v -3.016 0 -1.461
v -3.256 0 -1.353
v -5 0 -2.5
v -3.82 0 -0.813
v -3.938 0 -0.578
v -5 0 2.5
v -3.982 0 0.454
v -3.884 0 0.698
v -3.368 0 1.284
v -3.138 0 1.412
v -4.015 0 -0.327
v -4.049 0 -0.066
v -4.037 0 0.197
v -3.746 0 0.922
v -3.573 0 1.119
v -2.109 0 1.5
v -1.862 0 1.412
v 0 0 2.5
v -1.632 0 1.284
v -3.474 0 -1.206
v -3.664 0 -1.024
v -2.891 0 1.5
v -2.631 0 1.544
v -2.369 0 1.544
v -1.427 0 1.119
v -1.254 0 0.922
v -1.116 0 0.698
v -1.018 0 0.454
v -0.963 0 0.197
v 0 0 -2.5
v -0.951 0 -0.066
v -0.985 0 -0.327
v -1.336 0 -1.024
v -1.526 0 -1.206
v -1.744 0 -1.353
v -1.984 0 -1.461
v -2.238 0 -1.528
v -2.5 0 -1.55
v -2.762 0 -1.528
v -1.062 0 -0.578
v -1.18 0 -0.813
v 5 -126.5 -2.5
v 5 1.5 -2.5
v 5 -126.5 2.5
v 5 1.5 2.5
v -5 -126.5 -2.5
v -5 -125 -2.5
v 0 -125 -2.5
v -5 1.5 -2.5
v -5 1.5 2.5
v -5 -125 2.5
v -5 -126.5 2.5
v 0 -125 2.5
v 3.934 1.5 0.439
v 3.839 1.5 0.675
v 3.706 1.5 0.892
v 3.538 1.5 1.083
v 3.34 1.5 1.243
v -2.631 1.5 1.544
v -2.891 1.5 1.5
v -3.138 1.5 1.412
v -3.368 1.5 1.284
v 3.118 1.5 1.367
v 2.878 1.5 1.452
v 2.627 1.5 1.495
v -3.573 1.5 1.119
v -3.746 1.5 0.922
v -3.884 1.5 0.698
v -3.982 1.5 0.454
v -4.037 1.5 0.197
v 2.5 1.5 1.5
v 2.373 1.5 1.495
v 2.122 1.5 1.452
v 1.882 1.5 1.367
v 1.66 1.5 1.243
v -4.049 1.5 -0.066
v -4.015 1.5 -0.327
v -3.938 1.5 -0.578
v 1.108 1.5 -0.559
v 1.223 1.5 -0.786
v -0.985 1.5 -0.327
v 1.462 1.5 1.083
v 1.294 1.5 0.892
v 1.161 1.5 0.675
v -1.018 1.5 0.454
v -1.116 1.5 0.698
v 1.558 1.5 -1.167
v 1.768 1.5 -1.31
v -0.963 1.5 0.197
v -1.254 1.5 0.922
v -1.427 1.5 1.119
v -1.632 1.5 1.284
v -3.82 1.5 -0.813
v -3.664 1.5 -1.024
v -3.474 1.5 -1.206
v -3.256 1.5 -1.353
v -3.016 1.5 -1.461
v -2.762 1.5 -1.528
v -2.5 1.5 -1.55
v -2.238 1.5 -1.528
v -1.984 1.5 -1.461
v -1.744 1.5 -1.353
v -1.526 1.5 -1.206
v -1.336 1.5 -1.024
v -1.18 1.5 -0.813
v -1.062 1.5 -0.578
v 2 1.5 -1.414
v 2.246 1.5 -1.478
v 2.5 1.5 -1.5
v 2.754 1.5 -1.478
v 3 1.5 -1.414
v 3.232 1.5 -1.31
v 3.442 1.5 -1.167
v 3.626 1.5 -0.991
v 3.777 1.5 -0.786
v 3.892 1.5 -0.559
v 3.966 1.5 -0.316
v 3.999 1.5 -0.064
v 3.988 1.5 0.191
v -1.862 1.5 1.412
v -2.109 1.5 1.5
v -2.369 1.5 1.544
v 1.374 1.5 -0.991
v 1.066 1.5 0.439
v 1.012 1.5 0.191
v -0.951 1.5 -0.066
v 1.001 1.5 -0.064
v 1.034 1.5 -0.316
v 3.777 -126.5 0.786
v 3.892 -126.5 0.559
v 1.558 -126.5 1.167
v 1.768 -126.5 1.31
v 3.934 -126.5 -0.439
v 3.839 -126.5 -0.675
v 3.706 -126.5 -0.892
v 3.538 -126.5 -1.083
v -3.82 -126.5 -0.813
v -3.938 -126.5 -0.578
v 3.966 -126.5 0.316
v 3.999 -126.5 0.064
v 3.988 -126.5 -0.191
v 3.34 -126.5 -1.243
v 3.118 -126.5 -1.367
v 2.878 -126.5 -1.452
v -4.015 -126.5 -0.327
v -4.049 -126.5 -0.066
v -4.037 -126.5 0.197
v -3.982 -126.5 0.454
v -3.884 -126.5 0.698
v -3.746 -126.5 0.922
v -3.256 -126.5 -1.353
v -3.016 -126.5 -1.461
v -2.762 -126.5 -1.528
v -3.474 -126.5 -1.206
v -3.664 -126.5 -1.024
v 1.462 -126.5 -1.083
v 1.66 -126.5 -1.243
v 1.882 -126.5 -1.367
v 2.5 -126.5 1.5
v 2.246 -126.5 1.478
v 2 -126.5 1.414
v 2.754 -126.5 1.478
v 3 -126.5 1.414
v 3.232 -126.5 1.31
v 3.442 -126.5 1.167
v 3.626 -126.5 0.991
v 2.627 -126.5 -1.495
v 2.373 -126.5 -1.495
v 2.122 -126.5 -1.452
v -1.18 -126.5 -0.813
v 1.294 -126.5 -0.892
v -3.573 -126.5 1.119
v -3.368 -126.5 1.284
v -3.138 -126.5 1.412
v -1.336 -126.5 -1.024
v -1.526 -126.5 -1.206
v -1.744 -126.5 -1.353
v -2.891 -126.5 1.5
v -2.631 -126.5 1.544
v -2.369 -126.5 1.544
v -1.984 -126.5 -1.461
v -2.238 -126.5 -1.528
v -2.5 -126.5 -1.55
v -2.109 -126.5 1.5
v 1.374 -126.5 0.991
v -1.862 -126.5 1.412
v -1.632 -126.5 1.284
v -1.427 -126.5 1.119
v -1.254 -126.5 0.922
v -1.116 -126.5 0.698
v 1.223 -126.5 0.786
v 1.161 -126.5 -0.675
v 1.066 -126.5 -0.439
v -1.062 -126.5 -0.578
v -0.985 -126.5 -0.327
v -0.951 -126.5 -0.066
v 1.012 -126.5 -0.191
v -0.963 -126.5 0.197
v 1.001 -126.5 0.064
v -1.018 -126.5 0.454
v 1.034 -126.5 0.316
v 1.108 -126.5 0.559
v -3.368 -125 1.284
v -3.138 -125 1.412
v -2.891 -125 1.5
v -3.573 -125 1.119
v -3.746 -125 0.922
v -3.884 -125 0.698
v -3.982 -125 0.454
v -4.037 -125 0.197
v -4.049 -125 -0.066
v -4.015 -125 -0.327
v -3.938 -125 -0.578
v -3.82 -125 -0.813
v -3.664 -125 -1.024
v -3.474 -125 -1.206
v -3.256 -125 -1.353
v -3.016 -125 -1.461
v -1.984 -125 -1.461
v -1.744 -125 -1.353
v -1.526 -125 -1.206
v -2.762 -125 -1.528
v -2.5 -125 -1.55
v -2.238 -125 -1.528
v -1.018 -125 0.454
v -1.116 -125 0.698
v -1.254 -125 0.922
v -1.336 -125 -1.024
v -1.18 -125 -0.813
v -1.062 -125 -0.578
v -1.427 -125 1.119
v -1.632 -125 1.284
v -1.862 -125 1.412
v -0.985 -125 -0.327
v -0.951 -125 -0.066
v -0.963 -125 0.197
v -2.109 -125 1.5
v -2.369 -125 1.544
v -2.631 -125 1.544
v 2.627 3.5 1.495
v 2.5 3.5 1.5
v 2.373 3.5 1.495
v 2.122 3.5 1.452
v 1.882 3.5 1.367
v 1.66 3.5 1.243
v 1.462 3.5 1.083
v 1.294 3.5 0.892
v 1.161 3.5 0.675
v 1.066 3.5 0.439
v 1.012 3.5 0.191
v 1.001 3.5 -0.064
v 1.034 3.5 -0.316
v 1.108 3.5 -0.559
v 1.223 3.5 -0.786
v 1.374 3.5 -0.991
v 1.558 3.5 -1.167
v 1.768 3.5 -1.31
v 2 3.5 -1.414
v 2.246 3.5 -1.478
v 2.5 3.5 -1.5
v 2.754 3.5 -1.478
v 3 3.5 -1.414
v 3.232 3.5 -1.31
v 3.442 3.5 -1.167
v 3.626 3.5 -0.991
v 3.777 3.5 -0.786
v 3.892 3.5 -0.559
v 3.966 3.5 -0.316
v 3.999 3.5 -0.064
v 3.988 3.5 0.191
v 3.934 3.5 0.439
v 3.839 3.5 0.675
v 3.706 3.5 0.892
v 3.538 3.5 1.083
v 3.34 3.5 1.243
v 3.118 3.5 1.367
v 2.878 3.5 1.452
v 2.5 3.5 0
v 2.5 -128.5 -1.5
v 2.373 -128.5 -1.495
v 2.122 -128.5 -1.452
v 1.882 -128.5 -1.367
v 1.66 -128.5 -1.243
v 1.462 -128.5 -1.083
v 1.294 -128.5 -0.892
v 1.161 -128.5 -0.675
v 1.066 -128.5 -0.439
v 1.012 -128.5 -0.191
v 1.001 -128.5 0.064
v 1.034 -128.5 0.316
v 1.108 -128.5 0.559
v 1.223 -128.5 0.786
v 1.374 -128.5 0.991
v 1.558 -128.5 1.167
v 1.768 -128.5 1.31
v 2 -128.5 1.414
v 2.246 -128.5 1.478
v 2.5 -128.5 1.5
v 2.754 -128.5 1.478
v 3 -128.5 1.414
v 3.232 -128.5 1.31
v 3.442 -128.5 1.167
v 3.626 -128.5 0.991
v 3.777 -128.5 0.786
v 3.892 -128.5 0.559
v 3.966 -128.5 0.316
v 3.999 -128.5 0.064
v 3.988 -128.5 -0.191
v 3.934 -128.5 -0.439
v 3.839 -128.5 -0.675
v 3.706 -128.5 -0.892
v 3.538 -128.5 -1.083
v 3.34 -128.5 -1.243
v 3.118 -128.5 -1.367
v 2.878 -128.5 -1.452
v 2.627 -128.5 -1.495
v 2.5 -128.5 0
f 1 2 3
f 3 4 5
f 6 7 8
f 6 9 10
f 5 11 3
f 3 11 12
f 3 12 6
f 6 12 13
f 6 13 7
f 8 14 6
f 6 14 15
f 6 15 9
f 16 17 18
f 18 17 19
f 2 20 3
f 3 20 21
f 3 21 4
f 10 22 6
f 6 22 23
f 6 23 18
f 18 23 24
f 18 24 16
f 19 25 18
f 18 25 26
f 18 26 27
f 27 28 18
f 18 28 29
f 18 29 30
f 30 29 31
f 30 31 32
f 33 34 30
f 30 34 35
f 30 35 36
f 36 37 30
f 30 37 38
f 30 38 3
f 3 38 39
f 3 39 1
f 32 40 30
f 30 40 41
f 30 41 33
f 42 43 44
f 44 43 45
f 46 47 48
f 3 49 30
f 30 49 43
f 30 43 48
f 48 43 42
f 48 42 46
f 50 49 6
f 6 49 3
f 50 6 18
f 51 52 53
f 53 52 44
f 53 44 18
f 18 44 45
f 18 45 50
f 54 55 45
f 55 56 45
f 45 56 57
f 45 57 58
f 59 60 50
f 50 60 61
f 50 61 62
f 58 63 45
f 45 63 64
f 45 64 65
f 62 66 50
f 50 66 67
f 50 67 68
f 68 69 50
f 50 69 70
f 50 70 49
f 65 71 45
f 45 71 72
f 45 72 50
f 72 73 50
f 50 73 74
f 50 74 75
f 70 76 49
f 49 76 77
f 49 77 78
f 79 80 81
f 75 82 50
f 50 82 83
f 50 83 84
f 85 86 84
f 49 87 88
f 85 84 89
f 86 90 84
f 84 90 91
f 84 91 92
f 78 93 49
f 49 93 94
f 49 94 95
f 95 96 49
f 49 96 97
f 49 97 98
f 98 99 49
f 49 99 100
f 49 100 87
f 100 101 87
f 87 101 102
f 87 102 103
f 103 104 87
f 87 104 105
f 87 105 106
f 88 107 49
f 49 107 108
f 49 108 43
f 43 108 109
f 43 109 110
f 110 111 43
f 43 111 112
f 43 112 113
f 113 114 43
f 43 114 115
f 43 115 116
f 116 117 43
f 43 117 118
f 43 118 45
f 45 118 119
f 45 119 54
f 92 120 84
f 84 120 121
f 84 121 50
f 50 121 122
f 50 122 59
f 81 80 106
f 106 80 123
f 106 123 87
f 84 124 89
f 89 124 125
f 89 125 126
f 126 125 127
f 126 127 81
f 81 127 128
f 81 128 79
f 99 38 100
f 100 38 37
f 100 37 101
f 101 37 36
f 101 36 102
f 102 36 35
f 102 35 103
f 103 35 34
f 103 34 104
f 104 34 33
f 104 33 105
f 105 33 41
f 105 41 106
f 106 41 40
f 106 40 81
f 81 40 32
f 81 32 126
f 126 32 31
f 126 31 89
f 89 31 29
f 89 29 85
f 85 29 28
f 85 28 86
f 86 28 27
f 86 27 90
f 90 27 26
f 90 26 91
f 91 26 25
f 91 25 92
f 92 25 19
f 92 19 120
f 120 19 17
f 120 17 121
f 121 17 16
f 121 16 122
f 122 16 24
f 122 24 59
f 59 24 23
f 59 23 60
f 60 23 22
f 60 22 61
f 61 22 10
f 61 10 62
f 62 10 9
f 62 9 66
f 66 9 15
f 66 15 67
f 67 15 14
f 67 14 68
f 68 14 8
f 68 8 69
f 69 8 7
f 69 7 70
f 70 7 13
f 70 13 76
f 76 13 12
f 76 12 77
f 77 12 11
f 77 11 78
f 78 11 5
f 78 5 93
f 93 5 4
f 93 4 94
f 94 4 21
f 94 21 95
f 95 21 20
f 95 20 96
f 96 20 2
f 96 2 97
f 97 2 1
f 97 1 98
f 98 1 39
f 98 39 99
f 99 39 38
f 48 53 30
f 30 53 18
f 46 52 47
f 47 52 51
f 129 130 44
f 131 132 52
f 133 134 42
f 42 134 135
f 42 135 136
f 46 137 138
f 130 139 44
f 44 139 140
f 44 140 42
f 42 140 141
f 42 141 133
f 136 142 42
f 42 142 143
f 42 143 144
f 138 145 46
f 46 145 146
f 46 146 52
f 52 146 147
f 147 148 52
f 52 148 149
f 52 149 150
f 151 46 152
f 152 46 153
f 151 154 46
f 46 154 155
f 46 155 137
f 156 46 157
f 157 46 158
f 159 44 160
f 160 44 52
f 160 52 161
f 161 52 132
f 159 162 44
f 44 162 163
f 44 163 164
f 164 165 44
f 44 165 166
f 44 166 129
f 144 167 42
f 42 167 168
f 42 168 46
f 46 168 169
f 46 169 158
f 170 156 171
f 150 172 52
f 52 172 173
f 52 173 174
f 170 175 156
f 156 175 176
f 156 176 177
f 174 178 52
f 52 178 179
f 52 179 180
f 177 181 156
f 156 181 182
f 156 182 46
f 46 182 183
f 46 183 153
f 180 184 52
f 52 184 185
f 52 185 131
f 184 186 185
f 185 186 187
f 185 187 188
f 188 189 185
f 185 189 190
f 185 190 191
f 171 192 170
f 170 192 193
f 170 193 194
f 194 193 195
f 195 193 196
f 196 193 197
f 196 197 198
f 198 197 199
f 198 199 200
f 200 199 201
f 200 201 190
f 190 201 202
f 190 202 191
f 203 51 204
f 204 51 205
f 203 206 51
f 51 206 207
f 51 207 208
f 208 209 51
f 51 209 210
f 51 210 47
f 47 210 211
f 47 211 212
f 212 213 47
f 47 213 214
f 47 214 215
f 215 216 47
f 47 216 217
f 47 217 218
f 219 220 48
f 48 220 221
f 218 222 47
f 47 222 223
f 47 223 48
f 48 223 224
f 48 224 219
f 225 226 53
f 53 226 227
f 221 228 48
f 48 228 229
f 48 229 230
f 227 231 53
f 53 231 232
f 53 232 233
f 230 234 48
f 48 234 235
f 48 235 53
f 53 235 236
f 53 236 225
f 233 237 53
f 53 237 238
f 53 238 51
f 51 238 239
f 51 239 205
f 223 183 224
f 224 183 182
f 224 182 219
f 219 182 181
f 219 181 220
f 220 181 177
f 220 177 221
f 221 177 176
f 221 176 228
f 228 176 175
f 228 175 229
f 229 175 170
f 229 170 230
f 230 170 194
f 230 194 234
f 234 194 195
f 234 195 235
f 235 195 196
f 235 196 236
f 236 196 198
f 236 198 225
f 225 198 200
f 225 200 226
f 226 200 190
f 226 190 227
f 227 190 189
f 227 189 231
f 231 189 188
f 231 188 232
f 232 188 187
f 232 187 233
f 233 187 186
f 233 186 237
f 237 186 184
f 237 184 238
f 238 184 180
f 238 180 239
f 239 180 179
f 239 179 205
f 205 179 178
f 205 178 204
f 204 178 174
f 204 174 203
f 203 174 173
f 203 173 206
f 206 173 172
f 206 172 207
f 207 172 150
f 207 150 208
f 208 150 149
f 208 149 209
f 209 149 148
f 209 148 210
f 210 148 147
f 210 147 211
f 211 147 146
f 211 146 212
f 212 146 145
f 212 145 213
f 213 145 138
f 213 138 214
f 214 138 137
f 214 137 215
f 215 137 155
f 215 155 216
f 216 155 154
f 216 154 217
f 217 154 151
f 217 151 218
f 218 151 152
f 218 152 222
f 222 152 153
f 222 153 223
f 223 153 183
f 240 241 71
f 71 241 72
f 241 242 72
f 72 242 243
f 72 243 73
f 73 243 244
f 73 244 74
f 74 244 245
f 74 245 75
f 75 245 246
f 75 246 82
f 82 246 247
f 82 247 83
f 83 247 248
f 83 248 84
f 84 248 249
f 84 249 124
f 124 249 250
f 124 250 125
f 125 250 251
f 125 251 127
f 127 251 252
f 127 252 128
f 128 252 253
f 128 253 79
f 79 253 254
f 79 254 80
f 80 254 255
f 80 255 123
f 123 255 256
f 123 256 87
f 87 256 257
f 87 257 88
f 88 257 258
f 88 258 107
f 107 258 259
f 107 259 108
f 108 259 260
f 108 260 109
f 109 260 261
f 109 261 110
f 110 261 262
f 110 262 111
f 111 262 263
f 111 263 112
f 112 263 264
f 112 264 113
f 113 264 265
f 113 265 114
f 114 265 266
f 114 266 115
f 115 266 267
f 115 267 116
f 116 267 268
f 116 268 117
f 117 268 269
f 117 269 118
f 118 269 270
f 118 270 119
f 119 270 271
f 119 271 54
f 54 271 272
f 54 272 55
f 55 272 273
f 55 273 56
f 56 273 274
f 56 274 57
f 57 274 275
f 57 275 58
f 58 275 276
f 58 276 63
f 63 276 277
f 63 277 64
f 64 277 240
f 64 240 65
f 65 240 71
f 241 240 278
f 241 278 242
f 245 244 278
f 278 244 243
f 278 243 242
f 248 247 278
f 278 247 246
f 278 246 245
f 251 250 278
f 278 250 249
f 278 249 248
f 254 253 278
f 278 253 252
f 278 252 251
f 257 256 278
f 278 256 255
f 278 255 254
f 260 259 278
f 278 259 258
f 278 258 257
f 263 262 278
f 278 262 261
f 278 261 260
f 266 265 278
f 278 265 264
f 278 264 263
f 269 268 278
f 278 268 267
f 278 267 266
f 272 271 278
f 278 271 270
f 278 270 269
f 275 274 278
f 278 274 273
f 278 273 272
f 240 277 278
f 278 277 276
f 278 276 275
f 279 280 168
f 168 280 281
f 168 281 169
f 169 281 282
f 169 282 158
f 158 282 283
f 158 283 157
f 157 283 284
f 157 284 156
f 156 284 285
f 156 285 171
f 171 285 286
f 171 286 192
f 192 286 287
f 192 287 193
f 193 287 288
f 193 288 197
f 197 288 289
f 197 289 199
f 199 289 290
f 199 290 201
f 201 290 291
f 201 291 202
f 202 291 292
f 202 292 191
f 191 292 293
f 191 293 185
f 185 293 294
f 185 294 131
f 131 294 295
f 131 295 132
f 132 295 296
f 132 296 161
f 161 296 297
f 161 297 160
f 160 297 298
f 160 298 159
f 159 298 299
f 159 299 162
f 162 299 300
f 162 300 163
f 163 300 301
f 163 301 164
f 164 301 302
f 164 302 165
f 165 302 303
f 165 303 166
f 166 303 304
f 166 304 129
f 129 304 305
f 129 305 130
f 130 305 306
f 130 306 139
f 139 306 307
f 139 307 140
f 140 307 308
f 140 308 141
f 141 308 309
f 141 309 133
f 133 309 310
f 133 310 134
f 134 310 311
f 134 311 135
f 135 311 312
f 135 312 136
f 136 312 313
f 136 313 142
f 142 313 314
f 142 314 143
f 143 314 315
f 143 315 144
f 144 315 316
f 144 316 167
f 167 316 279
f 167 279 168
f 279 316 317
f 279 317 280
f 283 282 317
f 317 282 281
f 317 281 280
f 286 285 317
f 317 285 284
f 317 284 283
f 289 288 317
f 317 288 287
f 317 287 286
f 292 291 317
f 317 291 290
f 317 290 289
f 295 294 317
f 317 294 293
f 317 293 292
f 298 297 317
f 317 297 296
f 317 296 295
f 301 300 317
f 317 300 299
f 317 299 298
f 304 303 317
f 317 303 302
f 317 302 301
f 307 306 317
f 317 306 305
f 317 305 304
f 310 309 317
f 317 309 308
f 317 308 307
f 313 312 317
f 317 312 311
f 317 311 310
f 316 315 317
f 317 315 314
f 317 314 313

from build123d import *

# Parameters (mm, degrees)
SKETCH_2_W          = 10
SKETCH_2_H          = 5
EXTRUDE_1_DEPTH     = 1.5
SKETCH_3_R          = 1.55
CUT_EXTRUDE_1_DEPTH = 1.5
SKETCH_4_W          = 5
SKETCH_4_H          = 5
EXTRUDE_2_DEPTH     = 125
SKETCH_5_W          = 10
SKETCH_5_H          = 5
EXTRUDE_3_DEPTH     = 1.5
SKETCH_6_R          = 1.55
CUT_EXTRUDE_2_DEPTH = 1.5
SKETCH_7_R          = 1.5
EXTRUDE_4_DEPTH     = 2
EXTRUDE_START       = 2
SKETCH_8_R          = 1.5
EXTRUDE_5_DEPTH     = 2


with BuildPart() as part:
    # 草图2 → 凸台-拉伸1 (new body)
    with BuildSketch(Plane(origin=(0, 0, 0), x_dir=(1, 0, 0), z_dir=(0, 1, 0))):
        Rectangle(SKETCH_2_W, SKETCH_2_H)
    extrude(amount=EXTRUDE_1_DEPTH)

    # 草图3 → 切除-拉伸1 (cut)
    with BuildSketch(Plane.XZ):
        with Locations(Location((-2.5, 0, 0), (0, 0, 270))):
            Circle(SKETCH_3_R)
    extrude(amount=-CUT_EXTRUDE_1_DEPTH, mode=Mode.SUBTRACT)

    # 草图4 → 凸台-拉伸2 (add)
    with BuildSketch(Plane.XZ):
        with Locations((2.5, 0)):
            Rectangle(SKETCH_4_W, SKETCH_4_H)
    extrude(amount=EXTRUDE_2_DEPTH)

    # 草图5 → 凸台-拉伸3 (add)
    with BuildSketch(Plane.XZ.offset(125)):
        Rectangle(SKETCH_5_W, SKETCH_5_H)
    extrude(amount=EXTRUDE_3_DEPTH)

    # 草图6 → 切除-拉伸2 (cut)
    with BuildSketch(Plane.XZ.offset(126.5)):
        with Locations(Location((-2.5, 0, 0), (0, 0, 270))):
            Circle(SKETCH_6_R)
    extrude(amount=-CUT_EXTRUDE_2_DEPTH, mode=Mode.SUBTRACT)

    # 草图7 → 凸台-拉伸4 (add)
    with BuildSketch(Plane(origin=(0, 1.5, 0), x_dir=(1, 0, 0), z_dir=(0, 1, 0))):
        with Locations(Location((2.5, 0, 0), (0, 0, 270))):
            Circle(SKETCH_7_R)
    extrude(amount=EXTRUDE_4_DEPTH)

    # 草图8 → 凸台-拉伸5 (add)
    with BuildSketch(Plane.XZ.offset(126.5).offset(EXTRUDE_START)):
        with Locations(Location((2.5, 0, 0), (0, 0, 90))):
            Circle(SKETCH_8_R)
    extrude(amount=-EXTRUDE_5_DEPTH)


solid = part.part
